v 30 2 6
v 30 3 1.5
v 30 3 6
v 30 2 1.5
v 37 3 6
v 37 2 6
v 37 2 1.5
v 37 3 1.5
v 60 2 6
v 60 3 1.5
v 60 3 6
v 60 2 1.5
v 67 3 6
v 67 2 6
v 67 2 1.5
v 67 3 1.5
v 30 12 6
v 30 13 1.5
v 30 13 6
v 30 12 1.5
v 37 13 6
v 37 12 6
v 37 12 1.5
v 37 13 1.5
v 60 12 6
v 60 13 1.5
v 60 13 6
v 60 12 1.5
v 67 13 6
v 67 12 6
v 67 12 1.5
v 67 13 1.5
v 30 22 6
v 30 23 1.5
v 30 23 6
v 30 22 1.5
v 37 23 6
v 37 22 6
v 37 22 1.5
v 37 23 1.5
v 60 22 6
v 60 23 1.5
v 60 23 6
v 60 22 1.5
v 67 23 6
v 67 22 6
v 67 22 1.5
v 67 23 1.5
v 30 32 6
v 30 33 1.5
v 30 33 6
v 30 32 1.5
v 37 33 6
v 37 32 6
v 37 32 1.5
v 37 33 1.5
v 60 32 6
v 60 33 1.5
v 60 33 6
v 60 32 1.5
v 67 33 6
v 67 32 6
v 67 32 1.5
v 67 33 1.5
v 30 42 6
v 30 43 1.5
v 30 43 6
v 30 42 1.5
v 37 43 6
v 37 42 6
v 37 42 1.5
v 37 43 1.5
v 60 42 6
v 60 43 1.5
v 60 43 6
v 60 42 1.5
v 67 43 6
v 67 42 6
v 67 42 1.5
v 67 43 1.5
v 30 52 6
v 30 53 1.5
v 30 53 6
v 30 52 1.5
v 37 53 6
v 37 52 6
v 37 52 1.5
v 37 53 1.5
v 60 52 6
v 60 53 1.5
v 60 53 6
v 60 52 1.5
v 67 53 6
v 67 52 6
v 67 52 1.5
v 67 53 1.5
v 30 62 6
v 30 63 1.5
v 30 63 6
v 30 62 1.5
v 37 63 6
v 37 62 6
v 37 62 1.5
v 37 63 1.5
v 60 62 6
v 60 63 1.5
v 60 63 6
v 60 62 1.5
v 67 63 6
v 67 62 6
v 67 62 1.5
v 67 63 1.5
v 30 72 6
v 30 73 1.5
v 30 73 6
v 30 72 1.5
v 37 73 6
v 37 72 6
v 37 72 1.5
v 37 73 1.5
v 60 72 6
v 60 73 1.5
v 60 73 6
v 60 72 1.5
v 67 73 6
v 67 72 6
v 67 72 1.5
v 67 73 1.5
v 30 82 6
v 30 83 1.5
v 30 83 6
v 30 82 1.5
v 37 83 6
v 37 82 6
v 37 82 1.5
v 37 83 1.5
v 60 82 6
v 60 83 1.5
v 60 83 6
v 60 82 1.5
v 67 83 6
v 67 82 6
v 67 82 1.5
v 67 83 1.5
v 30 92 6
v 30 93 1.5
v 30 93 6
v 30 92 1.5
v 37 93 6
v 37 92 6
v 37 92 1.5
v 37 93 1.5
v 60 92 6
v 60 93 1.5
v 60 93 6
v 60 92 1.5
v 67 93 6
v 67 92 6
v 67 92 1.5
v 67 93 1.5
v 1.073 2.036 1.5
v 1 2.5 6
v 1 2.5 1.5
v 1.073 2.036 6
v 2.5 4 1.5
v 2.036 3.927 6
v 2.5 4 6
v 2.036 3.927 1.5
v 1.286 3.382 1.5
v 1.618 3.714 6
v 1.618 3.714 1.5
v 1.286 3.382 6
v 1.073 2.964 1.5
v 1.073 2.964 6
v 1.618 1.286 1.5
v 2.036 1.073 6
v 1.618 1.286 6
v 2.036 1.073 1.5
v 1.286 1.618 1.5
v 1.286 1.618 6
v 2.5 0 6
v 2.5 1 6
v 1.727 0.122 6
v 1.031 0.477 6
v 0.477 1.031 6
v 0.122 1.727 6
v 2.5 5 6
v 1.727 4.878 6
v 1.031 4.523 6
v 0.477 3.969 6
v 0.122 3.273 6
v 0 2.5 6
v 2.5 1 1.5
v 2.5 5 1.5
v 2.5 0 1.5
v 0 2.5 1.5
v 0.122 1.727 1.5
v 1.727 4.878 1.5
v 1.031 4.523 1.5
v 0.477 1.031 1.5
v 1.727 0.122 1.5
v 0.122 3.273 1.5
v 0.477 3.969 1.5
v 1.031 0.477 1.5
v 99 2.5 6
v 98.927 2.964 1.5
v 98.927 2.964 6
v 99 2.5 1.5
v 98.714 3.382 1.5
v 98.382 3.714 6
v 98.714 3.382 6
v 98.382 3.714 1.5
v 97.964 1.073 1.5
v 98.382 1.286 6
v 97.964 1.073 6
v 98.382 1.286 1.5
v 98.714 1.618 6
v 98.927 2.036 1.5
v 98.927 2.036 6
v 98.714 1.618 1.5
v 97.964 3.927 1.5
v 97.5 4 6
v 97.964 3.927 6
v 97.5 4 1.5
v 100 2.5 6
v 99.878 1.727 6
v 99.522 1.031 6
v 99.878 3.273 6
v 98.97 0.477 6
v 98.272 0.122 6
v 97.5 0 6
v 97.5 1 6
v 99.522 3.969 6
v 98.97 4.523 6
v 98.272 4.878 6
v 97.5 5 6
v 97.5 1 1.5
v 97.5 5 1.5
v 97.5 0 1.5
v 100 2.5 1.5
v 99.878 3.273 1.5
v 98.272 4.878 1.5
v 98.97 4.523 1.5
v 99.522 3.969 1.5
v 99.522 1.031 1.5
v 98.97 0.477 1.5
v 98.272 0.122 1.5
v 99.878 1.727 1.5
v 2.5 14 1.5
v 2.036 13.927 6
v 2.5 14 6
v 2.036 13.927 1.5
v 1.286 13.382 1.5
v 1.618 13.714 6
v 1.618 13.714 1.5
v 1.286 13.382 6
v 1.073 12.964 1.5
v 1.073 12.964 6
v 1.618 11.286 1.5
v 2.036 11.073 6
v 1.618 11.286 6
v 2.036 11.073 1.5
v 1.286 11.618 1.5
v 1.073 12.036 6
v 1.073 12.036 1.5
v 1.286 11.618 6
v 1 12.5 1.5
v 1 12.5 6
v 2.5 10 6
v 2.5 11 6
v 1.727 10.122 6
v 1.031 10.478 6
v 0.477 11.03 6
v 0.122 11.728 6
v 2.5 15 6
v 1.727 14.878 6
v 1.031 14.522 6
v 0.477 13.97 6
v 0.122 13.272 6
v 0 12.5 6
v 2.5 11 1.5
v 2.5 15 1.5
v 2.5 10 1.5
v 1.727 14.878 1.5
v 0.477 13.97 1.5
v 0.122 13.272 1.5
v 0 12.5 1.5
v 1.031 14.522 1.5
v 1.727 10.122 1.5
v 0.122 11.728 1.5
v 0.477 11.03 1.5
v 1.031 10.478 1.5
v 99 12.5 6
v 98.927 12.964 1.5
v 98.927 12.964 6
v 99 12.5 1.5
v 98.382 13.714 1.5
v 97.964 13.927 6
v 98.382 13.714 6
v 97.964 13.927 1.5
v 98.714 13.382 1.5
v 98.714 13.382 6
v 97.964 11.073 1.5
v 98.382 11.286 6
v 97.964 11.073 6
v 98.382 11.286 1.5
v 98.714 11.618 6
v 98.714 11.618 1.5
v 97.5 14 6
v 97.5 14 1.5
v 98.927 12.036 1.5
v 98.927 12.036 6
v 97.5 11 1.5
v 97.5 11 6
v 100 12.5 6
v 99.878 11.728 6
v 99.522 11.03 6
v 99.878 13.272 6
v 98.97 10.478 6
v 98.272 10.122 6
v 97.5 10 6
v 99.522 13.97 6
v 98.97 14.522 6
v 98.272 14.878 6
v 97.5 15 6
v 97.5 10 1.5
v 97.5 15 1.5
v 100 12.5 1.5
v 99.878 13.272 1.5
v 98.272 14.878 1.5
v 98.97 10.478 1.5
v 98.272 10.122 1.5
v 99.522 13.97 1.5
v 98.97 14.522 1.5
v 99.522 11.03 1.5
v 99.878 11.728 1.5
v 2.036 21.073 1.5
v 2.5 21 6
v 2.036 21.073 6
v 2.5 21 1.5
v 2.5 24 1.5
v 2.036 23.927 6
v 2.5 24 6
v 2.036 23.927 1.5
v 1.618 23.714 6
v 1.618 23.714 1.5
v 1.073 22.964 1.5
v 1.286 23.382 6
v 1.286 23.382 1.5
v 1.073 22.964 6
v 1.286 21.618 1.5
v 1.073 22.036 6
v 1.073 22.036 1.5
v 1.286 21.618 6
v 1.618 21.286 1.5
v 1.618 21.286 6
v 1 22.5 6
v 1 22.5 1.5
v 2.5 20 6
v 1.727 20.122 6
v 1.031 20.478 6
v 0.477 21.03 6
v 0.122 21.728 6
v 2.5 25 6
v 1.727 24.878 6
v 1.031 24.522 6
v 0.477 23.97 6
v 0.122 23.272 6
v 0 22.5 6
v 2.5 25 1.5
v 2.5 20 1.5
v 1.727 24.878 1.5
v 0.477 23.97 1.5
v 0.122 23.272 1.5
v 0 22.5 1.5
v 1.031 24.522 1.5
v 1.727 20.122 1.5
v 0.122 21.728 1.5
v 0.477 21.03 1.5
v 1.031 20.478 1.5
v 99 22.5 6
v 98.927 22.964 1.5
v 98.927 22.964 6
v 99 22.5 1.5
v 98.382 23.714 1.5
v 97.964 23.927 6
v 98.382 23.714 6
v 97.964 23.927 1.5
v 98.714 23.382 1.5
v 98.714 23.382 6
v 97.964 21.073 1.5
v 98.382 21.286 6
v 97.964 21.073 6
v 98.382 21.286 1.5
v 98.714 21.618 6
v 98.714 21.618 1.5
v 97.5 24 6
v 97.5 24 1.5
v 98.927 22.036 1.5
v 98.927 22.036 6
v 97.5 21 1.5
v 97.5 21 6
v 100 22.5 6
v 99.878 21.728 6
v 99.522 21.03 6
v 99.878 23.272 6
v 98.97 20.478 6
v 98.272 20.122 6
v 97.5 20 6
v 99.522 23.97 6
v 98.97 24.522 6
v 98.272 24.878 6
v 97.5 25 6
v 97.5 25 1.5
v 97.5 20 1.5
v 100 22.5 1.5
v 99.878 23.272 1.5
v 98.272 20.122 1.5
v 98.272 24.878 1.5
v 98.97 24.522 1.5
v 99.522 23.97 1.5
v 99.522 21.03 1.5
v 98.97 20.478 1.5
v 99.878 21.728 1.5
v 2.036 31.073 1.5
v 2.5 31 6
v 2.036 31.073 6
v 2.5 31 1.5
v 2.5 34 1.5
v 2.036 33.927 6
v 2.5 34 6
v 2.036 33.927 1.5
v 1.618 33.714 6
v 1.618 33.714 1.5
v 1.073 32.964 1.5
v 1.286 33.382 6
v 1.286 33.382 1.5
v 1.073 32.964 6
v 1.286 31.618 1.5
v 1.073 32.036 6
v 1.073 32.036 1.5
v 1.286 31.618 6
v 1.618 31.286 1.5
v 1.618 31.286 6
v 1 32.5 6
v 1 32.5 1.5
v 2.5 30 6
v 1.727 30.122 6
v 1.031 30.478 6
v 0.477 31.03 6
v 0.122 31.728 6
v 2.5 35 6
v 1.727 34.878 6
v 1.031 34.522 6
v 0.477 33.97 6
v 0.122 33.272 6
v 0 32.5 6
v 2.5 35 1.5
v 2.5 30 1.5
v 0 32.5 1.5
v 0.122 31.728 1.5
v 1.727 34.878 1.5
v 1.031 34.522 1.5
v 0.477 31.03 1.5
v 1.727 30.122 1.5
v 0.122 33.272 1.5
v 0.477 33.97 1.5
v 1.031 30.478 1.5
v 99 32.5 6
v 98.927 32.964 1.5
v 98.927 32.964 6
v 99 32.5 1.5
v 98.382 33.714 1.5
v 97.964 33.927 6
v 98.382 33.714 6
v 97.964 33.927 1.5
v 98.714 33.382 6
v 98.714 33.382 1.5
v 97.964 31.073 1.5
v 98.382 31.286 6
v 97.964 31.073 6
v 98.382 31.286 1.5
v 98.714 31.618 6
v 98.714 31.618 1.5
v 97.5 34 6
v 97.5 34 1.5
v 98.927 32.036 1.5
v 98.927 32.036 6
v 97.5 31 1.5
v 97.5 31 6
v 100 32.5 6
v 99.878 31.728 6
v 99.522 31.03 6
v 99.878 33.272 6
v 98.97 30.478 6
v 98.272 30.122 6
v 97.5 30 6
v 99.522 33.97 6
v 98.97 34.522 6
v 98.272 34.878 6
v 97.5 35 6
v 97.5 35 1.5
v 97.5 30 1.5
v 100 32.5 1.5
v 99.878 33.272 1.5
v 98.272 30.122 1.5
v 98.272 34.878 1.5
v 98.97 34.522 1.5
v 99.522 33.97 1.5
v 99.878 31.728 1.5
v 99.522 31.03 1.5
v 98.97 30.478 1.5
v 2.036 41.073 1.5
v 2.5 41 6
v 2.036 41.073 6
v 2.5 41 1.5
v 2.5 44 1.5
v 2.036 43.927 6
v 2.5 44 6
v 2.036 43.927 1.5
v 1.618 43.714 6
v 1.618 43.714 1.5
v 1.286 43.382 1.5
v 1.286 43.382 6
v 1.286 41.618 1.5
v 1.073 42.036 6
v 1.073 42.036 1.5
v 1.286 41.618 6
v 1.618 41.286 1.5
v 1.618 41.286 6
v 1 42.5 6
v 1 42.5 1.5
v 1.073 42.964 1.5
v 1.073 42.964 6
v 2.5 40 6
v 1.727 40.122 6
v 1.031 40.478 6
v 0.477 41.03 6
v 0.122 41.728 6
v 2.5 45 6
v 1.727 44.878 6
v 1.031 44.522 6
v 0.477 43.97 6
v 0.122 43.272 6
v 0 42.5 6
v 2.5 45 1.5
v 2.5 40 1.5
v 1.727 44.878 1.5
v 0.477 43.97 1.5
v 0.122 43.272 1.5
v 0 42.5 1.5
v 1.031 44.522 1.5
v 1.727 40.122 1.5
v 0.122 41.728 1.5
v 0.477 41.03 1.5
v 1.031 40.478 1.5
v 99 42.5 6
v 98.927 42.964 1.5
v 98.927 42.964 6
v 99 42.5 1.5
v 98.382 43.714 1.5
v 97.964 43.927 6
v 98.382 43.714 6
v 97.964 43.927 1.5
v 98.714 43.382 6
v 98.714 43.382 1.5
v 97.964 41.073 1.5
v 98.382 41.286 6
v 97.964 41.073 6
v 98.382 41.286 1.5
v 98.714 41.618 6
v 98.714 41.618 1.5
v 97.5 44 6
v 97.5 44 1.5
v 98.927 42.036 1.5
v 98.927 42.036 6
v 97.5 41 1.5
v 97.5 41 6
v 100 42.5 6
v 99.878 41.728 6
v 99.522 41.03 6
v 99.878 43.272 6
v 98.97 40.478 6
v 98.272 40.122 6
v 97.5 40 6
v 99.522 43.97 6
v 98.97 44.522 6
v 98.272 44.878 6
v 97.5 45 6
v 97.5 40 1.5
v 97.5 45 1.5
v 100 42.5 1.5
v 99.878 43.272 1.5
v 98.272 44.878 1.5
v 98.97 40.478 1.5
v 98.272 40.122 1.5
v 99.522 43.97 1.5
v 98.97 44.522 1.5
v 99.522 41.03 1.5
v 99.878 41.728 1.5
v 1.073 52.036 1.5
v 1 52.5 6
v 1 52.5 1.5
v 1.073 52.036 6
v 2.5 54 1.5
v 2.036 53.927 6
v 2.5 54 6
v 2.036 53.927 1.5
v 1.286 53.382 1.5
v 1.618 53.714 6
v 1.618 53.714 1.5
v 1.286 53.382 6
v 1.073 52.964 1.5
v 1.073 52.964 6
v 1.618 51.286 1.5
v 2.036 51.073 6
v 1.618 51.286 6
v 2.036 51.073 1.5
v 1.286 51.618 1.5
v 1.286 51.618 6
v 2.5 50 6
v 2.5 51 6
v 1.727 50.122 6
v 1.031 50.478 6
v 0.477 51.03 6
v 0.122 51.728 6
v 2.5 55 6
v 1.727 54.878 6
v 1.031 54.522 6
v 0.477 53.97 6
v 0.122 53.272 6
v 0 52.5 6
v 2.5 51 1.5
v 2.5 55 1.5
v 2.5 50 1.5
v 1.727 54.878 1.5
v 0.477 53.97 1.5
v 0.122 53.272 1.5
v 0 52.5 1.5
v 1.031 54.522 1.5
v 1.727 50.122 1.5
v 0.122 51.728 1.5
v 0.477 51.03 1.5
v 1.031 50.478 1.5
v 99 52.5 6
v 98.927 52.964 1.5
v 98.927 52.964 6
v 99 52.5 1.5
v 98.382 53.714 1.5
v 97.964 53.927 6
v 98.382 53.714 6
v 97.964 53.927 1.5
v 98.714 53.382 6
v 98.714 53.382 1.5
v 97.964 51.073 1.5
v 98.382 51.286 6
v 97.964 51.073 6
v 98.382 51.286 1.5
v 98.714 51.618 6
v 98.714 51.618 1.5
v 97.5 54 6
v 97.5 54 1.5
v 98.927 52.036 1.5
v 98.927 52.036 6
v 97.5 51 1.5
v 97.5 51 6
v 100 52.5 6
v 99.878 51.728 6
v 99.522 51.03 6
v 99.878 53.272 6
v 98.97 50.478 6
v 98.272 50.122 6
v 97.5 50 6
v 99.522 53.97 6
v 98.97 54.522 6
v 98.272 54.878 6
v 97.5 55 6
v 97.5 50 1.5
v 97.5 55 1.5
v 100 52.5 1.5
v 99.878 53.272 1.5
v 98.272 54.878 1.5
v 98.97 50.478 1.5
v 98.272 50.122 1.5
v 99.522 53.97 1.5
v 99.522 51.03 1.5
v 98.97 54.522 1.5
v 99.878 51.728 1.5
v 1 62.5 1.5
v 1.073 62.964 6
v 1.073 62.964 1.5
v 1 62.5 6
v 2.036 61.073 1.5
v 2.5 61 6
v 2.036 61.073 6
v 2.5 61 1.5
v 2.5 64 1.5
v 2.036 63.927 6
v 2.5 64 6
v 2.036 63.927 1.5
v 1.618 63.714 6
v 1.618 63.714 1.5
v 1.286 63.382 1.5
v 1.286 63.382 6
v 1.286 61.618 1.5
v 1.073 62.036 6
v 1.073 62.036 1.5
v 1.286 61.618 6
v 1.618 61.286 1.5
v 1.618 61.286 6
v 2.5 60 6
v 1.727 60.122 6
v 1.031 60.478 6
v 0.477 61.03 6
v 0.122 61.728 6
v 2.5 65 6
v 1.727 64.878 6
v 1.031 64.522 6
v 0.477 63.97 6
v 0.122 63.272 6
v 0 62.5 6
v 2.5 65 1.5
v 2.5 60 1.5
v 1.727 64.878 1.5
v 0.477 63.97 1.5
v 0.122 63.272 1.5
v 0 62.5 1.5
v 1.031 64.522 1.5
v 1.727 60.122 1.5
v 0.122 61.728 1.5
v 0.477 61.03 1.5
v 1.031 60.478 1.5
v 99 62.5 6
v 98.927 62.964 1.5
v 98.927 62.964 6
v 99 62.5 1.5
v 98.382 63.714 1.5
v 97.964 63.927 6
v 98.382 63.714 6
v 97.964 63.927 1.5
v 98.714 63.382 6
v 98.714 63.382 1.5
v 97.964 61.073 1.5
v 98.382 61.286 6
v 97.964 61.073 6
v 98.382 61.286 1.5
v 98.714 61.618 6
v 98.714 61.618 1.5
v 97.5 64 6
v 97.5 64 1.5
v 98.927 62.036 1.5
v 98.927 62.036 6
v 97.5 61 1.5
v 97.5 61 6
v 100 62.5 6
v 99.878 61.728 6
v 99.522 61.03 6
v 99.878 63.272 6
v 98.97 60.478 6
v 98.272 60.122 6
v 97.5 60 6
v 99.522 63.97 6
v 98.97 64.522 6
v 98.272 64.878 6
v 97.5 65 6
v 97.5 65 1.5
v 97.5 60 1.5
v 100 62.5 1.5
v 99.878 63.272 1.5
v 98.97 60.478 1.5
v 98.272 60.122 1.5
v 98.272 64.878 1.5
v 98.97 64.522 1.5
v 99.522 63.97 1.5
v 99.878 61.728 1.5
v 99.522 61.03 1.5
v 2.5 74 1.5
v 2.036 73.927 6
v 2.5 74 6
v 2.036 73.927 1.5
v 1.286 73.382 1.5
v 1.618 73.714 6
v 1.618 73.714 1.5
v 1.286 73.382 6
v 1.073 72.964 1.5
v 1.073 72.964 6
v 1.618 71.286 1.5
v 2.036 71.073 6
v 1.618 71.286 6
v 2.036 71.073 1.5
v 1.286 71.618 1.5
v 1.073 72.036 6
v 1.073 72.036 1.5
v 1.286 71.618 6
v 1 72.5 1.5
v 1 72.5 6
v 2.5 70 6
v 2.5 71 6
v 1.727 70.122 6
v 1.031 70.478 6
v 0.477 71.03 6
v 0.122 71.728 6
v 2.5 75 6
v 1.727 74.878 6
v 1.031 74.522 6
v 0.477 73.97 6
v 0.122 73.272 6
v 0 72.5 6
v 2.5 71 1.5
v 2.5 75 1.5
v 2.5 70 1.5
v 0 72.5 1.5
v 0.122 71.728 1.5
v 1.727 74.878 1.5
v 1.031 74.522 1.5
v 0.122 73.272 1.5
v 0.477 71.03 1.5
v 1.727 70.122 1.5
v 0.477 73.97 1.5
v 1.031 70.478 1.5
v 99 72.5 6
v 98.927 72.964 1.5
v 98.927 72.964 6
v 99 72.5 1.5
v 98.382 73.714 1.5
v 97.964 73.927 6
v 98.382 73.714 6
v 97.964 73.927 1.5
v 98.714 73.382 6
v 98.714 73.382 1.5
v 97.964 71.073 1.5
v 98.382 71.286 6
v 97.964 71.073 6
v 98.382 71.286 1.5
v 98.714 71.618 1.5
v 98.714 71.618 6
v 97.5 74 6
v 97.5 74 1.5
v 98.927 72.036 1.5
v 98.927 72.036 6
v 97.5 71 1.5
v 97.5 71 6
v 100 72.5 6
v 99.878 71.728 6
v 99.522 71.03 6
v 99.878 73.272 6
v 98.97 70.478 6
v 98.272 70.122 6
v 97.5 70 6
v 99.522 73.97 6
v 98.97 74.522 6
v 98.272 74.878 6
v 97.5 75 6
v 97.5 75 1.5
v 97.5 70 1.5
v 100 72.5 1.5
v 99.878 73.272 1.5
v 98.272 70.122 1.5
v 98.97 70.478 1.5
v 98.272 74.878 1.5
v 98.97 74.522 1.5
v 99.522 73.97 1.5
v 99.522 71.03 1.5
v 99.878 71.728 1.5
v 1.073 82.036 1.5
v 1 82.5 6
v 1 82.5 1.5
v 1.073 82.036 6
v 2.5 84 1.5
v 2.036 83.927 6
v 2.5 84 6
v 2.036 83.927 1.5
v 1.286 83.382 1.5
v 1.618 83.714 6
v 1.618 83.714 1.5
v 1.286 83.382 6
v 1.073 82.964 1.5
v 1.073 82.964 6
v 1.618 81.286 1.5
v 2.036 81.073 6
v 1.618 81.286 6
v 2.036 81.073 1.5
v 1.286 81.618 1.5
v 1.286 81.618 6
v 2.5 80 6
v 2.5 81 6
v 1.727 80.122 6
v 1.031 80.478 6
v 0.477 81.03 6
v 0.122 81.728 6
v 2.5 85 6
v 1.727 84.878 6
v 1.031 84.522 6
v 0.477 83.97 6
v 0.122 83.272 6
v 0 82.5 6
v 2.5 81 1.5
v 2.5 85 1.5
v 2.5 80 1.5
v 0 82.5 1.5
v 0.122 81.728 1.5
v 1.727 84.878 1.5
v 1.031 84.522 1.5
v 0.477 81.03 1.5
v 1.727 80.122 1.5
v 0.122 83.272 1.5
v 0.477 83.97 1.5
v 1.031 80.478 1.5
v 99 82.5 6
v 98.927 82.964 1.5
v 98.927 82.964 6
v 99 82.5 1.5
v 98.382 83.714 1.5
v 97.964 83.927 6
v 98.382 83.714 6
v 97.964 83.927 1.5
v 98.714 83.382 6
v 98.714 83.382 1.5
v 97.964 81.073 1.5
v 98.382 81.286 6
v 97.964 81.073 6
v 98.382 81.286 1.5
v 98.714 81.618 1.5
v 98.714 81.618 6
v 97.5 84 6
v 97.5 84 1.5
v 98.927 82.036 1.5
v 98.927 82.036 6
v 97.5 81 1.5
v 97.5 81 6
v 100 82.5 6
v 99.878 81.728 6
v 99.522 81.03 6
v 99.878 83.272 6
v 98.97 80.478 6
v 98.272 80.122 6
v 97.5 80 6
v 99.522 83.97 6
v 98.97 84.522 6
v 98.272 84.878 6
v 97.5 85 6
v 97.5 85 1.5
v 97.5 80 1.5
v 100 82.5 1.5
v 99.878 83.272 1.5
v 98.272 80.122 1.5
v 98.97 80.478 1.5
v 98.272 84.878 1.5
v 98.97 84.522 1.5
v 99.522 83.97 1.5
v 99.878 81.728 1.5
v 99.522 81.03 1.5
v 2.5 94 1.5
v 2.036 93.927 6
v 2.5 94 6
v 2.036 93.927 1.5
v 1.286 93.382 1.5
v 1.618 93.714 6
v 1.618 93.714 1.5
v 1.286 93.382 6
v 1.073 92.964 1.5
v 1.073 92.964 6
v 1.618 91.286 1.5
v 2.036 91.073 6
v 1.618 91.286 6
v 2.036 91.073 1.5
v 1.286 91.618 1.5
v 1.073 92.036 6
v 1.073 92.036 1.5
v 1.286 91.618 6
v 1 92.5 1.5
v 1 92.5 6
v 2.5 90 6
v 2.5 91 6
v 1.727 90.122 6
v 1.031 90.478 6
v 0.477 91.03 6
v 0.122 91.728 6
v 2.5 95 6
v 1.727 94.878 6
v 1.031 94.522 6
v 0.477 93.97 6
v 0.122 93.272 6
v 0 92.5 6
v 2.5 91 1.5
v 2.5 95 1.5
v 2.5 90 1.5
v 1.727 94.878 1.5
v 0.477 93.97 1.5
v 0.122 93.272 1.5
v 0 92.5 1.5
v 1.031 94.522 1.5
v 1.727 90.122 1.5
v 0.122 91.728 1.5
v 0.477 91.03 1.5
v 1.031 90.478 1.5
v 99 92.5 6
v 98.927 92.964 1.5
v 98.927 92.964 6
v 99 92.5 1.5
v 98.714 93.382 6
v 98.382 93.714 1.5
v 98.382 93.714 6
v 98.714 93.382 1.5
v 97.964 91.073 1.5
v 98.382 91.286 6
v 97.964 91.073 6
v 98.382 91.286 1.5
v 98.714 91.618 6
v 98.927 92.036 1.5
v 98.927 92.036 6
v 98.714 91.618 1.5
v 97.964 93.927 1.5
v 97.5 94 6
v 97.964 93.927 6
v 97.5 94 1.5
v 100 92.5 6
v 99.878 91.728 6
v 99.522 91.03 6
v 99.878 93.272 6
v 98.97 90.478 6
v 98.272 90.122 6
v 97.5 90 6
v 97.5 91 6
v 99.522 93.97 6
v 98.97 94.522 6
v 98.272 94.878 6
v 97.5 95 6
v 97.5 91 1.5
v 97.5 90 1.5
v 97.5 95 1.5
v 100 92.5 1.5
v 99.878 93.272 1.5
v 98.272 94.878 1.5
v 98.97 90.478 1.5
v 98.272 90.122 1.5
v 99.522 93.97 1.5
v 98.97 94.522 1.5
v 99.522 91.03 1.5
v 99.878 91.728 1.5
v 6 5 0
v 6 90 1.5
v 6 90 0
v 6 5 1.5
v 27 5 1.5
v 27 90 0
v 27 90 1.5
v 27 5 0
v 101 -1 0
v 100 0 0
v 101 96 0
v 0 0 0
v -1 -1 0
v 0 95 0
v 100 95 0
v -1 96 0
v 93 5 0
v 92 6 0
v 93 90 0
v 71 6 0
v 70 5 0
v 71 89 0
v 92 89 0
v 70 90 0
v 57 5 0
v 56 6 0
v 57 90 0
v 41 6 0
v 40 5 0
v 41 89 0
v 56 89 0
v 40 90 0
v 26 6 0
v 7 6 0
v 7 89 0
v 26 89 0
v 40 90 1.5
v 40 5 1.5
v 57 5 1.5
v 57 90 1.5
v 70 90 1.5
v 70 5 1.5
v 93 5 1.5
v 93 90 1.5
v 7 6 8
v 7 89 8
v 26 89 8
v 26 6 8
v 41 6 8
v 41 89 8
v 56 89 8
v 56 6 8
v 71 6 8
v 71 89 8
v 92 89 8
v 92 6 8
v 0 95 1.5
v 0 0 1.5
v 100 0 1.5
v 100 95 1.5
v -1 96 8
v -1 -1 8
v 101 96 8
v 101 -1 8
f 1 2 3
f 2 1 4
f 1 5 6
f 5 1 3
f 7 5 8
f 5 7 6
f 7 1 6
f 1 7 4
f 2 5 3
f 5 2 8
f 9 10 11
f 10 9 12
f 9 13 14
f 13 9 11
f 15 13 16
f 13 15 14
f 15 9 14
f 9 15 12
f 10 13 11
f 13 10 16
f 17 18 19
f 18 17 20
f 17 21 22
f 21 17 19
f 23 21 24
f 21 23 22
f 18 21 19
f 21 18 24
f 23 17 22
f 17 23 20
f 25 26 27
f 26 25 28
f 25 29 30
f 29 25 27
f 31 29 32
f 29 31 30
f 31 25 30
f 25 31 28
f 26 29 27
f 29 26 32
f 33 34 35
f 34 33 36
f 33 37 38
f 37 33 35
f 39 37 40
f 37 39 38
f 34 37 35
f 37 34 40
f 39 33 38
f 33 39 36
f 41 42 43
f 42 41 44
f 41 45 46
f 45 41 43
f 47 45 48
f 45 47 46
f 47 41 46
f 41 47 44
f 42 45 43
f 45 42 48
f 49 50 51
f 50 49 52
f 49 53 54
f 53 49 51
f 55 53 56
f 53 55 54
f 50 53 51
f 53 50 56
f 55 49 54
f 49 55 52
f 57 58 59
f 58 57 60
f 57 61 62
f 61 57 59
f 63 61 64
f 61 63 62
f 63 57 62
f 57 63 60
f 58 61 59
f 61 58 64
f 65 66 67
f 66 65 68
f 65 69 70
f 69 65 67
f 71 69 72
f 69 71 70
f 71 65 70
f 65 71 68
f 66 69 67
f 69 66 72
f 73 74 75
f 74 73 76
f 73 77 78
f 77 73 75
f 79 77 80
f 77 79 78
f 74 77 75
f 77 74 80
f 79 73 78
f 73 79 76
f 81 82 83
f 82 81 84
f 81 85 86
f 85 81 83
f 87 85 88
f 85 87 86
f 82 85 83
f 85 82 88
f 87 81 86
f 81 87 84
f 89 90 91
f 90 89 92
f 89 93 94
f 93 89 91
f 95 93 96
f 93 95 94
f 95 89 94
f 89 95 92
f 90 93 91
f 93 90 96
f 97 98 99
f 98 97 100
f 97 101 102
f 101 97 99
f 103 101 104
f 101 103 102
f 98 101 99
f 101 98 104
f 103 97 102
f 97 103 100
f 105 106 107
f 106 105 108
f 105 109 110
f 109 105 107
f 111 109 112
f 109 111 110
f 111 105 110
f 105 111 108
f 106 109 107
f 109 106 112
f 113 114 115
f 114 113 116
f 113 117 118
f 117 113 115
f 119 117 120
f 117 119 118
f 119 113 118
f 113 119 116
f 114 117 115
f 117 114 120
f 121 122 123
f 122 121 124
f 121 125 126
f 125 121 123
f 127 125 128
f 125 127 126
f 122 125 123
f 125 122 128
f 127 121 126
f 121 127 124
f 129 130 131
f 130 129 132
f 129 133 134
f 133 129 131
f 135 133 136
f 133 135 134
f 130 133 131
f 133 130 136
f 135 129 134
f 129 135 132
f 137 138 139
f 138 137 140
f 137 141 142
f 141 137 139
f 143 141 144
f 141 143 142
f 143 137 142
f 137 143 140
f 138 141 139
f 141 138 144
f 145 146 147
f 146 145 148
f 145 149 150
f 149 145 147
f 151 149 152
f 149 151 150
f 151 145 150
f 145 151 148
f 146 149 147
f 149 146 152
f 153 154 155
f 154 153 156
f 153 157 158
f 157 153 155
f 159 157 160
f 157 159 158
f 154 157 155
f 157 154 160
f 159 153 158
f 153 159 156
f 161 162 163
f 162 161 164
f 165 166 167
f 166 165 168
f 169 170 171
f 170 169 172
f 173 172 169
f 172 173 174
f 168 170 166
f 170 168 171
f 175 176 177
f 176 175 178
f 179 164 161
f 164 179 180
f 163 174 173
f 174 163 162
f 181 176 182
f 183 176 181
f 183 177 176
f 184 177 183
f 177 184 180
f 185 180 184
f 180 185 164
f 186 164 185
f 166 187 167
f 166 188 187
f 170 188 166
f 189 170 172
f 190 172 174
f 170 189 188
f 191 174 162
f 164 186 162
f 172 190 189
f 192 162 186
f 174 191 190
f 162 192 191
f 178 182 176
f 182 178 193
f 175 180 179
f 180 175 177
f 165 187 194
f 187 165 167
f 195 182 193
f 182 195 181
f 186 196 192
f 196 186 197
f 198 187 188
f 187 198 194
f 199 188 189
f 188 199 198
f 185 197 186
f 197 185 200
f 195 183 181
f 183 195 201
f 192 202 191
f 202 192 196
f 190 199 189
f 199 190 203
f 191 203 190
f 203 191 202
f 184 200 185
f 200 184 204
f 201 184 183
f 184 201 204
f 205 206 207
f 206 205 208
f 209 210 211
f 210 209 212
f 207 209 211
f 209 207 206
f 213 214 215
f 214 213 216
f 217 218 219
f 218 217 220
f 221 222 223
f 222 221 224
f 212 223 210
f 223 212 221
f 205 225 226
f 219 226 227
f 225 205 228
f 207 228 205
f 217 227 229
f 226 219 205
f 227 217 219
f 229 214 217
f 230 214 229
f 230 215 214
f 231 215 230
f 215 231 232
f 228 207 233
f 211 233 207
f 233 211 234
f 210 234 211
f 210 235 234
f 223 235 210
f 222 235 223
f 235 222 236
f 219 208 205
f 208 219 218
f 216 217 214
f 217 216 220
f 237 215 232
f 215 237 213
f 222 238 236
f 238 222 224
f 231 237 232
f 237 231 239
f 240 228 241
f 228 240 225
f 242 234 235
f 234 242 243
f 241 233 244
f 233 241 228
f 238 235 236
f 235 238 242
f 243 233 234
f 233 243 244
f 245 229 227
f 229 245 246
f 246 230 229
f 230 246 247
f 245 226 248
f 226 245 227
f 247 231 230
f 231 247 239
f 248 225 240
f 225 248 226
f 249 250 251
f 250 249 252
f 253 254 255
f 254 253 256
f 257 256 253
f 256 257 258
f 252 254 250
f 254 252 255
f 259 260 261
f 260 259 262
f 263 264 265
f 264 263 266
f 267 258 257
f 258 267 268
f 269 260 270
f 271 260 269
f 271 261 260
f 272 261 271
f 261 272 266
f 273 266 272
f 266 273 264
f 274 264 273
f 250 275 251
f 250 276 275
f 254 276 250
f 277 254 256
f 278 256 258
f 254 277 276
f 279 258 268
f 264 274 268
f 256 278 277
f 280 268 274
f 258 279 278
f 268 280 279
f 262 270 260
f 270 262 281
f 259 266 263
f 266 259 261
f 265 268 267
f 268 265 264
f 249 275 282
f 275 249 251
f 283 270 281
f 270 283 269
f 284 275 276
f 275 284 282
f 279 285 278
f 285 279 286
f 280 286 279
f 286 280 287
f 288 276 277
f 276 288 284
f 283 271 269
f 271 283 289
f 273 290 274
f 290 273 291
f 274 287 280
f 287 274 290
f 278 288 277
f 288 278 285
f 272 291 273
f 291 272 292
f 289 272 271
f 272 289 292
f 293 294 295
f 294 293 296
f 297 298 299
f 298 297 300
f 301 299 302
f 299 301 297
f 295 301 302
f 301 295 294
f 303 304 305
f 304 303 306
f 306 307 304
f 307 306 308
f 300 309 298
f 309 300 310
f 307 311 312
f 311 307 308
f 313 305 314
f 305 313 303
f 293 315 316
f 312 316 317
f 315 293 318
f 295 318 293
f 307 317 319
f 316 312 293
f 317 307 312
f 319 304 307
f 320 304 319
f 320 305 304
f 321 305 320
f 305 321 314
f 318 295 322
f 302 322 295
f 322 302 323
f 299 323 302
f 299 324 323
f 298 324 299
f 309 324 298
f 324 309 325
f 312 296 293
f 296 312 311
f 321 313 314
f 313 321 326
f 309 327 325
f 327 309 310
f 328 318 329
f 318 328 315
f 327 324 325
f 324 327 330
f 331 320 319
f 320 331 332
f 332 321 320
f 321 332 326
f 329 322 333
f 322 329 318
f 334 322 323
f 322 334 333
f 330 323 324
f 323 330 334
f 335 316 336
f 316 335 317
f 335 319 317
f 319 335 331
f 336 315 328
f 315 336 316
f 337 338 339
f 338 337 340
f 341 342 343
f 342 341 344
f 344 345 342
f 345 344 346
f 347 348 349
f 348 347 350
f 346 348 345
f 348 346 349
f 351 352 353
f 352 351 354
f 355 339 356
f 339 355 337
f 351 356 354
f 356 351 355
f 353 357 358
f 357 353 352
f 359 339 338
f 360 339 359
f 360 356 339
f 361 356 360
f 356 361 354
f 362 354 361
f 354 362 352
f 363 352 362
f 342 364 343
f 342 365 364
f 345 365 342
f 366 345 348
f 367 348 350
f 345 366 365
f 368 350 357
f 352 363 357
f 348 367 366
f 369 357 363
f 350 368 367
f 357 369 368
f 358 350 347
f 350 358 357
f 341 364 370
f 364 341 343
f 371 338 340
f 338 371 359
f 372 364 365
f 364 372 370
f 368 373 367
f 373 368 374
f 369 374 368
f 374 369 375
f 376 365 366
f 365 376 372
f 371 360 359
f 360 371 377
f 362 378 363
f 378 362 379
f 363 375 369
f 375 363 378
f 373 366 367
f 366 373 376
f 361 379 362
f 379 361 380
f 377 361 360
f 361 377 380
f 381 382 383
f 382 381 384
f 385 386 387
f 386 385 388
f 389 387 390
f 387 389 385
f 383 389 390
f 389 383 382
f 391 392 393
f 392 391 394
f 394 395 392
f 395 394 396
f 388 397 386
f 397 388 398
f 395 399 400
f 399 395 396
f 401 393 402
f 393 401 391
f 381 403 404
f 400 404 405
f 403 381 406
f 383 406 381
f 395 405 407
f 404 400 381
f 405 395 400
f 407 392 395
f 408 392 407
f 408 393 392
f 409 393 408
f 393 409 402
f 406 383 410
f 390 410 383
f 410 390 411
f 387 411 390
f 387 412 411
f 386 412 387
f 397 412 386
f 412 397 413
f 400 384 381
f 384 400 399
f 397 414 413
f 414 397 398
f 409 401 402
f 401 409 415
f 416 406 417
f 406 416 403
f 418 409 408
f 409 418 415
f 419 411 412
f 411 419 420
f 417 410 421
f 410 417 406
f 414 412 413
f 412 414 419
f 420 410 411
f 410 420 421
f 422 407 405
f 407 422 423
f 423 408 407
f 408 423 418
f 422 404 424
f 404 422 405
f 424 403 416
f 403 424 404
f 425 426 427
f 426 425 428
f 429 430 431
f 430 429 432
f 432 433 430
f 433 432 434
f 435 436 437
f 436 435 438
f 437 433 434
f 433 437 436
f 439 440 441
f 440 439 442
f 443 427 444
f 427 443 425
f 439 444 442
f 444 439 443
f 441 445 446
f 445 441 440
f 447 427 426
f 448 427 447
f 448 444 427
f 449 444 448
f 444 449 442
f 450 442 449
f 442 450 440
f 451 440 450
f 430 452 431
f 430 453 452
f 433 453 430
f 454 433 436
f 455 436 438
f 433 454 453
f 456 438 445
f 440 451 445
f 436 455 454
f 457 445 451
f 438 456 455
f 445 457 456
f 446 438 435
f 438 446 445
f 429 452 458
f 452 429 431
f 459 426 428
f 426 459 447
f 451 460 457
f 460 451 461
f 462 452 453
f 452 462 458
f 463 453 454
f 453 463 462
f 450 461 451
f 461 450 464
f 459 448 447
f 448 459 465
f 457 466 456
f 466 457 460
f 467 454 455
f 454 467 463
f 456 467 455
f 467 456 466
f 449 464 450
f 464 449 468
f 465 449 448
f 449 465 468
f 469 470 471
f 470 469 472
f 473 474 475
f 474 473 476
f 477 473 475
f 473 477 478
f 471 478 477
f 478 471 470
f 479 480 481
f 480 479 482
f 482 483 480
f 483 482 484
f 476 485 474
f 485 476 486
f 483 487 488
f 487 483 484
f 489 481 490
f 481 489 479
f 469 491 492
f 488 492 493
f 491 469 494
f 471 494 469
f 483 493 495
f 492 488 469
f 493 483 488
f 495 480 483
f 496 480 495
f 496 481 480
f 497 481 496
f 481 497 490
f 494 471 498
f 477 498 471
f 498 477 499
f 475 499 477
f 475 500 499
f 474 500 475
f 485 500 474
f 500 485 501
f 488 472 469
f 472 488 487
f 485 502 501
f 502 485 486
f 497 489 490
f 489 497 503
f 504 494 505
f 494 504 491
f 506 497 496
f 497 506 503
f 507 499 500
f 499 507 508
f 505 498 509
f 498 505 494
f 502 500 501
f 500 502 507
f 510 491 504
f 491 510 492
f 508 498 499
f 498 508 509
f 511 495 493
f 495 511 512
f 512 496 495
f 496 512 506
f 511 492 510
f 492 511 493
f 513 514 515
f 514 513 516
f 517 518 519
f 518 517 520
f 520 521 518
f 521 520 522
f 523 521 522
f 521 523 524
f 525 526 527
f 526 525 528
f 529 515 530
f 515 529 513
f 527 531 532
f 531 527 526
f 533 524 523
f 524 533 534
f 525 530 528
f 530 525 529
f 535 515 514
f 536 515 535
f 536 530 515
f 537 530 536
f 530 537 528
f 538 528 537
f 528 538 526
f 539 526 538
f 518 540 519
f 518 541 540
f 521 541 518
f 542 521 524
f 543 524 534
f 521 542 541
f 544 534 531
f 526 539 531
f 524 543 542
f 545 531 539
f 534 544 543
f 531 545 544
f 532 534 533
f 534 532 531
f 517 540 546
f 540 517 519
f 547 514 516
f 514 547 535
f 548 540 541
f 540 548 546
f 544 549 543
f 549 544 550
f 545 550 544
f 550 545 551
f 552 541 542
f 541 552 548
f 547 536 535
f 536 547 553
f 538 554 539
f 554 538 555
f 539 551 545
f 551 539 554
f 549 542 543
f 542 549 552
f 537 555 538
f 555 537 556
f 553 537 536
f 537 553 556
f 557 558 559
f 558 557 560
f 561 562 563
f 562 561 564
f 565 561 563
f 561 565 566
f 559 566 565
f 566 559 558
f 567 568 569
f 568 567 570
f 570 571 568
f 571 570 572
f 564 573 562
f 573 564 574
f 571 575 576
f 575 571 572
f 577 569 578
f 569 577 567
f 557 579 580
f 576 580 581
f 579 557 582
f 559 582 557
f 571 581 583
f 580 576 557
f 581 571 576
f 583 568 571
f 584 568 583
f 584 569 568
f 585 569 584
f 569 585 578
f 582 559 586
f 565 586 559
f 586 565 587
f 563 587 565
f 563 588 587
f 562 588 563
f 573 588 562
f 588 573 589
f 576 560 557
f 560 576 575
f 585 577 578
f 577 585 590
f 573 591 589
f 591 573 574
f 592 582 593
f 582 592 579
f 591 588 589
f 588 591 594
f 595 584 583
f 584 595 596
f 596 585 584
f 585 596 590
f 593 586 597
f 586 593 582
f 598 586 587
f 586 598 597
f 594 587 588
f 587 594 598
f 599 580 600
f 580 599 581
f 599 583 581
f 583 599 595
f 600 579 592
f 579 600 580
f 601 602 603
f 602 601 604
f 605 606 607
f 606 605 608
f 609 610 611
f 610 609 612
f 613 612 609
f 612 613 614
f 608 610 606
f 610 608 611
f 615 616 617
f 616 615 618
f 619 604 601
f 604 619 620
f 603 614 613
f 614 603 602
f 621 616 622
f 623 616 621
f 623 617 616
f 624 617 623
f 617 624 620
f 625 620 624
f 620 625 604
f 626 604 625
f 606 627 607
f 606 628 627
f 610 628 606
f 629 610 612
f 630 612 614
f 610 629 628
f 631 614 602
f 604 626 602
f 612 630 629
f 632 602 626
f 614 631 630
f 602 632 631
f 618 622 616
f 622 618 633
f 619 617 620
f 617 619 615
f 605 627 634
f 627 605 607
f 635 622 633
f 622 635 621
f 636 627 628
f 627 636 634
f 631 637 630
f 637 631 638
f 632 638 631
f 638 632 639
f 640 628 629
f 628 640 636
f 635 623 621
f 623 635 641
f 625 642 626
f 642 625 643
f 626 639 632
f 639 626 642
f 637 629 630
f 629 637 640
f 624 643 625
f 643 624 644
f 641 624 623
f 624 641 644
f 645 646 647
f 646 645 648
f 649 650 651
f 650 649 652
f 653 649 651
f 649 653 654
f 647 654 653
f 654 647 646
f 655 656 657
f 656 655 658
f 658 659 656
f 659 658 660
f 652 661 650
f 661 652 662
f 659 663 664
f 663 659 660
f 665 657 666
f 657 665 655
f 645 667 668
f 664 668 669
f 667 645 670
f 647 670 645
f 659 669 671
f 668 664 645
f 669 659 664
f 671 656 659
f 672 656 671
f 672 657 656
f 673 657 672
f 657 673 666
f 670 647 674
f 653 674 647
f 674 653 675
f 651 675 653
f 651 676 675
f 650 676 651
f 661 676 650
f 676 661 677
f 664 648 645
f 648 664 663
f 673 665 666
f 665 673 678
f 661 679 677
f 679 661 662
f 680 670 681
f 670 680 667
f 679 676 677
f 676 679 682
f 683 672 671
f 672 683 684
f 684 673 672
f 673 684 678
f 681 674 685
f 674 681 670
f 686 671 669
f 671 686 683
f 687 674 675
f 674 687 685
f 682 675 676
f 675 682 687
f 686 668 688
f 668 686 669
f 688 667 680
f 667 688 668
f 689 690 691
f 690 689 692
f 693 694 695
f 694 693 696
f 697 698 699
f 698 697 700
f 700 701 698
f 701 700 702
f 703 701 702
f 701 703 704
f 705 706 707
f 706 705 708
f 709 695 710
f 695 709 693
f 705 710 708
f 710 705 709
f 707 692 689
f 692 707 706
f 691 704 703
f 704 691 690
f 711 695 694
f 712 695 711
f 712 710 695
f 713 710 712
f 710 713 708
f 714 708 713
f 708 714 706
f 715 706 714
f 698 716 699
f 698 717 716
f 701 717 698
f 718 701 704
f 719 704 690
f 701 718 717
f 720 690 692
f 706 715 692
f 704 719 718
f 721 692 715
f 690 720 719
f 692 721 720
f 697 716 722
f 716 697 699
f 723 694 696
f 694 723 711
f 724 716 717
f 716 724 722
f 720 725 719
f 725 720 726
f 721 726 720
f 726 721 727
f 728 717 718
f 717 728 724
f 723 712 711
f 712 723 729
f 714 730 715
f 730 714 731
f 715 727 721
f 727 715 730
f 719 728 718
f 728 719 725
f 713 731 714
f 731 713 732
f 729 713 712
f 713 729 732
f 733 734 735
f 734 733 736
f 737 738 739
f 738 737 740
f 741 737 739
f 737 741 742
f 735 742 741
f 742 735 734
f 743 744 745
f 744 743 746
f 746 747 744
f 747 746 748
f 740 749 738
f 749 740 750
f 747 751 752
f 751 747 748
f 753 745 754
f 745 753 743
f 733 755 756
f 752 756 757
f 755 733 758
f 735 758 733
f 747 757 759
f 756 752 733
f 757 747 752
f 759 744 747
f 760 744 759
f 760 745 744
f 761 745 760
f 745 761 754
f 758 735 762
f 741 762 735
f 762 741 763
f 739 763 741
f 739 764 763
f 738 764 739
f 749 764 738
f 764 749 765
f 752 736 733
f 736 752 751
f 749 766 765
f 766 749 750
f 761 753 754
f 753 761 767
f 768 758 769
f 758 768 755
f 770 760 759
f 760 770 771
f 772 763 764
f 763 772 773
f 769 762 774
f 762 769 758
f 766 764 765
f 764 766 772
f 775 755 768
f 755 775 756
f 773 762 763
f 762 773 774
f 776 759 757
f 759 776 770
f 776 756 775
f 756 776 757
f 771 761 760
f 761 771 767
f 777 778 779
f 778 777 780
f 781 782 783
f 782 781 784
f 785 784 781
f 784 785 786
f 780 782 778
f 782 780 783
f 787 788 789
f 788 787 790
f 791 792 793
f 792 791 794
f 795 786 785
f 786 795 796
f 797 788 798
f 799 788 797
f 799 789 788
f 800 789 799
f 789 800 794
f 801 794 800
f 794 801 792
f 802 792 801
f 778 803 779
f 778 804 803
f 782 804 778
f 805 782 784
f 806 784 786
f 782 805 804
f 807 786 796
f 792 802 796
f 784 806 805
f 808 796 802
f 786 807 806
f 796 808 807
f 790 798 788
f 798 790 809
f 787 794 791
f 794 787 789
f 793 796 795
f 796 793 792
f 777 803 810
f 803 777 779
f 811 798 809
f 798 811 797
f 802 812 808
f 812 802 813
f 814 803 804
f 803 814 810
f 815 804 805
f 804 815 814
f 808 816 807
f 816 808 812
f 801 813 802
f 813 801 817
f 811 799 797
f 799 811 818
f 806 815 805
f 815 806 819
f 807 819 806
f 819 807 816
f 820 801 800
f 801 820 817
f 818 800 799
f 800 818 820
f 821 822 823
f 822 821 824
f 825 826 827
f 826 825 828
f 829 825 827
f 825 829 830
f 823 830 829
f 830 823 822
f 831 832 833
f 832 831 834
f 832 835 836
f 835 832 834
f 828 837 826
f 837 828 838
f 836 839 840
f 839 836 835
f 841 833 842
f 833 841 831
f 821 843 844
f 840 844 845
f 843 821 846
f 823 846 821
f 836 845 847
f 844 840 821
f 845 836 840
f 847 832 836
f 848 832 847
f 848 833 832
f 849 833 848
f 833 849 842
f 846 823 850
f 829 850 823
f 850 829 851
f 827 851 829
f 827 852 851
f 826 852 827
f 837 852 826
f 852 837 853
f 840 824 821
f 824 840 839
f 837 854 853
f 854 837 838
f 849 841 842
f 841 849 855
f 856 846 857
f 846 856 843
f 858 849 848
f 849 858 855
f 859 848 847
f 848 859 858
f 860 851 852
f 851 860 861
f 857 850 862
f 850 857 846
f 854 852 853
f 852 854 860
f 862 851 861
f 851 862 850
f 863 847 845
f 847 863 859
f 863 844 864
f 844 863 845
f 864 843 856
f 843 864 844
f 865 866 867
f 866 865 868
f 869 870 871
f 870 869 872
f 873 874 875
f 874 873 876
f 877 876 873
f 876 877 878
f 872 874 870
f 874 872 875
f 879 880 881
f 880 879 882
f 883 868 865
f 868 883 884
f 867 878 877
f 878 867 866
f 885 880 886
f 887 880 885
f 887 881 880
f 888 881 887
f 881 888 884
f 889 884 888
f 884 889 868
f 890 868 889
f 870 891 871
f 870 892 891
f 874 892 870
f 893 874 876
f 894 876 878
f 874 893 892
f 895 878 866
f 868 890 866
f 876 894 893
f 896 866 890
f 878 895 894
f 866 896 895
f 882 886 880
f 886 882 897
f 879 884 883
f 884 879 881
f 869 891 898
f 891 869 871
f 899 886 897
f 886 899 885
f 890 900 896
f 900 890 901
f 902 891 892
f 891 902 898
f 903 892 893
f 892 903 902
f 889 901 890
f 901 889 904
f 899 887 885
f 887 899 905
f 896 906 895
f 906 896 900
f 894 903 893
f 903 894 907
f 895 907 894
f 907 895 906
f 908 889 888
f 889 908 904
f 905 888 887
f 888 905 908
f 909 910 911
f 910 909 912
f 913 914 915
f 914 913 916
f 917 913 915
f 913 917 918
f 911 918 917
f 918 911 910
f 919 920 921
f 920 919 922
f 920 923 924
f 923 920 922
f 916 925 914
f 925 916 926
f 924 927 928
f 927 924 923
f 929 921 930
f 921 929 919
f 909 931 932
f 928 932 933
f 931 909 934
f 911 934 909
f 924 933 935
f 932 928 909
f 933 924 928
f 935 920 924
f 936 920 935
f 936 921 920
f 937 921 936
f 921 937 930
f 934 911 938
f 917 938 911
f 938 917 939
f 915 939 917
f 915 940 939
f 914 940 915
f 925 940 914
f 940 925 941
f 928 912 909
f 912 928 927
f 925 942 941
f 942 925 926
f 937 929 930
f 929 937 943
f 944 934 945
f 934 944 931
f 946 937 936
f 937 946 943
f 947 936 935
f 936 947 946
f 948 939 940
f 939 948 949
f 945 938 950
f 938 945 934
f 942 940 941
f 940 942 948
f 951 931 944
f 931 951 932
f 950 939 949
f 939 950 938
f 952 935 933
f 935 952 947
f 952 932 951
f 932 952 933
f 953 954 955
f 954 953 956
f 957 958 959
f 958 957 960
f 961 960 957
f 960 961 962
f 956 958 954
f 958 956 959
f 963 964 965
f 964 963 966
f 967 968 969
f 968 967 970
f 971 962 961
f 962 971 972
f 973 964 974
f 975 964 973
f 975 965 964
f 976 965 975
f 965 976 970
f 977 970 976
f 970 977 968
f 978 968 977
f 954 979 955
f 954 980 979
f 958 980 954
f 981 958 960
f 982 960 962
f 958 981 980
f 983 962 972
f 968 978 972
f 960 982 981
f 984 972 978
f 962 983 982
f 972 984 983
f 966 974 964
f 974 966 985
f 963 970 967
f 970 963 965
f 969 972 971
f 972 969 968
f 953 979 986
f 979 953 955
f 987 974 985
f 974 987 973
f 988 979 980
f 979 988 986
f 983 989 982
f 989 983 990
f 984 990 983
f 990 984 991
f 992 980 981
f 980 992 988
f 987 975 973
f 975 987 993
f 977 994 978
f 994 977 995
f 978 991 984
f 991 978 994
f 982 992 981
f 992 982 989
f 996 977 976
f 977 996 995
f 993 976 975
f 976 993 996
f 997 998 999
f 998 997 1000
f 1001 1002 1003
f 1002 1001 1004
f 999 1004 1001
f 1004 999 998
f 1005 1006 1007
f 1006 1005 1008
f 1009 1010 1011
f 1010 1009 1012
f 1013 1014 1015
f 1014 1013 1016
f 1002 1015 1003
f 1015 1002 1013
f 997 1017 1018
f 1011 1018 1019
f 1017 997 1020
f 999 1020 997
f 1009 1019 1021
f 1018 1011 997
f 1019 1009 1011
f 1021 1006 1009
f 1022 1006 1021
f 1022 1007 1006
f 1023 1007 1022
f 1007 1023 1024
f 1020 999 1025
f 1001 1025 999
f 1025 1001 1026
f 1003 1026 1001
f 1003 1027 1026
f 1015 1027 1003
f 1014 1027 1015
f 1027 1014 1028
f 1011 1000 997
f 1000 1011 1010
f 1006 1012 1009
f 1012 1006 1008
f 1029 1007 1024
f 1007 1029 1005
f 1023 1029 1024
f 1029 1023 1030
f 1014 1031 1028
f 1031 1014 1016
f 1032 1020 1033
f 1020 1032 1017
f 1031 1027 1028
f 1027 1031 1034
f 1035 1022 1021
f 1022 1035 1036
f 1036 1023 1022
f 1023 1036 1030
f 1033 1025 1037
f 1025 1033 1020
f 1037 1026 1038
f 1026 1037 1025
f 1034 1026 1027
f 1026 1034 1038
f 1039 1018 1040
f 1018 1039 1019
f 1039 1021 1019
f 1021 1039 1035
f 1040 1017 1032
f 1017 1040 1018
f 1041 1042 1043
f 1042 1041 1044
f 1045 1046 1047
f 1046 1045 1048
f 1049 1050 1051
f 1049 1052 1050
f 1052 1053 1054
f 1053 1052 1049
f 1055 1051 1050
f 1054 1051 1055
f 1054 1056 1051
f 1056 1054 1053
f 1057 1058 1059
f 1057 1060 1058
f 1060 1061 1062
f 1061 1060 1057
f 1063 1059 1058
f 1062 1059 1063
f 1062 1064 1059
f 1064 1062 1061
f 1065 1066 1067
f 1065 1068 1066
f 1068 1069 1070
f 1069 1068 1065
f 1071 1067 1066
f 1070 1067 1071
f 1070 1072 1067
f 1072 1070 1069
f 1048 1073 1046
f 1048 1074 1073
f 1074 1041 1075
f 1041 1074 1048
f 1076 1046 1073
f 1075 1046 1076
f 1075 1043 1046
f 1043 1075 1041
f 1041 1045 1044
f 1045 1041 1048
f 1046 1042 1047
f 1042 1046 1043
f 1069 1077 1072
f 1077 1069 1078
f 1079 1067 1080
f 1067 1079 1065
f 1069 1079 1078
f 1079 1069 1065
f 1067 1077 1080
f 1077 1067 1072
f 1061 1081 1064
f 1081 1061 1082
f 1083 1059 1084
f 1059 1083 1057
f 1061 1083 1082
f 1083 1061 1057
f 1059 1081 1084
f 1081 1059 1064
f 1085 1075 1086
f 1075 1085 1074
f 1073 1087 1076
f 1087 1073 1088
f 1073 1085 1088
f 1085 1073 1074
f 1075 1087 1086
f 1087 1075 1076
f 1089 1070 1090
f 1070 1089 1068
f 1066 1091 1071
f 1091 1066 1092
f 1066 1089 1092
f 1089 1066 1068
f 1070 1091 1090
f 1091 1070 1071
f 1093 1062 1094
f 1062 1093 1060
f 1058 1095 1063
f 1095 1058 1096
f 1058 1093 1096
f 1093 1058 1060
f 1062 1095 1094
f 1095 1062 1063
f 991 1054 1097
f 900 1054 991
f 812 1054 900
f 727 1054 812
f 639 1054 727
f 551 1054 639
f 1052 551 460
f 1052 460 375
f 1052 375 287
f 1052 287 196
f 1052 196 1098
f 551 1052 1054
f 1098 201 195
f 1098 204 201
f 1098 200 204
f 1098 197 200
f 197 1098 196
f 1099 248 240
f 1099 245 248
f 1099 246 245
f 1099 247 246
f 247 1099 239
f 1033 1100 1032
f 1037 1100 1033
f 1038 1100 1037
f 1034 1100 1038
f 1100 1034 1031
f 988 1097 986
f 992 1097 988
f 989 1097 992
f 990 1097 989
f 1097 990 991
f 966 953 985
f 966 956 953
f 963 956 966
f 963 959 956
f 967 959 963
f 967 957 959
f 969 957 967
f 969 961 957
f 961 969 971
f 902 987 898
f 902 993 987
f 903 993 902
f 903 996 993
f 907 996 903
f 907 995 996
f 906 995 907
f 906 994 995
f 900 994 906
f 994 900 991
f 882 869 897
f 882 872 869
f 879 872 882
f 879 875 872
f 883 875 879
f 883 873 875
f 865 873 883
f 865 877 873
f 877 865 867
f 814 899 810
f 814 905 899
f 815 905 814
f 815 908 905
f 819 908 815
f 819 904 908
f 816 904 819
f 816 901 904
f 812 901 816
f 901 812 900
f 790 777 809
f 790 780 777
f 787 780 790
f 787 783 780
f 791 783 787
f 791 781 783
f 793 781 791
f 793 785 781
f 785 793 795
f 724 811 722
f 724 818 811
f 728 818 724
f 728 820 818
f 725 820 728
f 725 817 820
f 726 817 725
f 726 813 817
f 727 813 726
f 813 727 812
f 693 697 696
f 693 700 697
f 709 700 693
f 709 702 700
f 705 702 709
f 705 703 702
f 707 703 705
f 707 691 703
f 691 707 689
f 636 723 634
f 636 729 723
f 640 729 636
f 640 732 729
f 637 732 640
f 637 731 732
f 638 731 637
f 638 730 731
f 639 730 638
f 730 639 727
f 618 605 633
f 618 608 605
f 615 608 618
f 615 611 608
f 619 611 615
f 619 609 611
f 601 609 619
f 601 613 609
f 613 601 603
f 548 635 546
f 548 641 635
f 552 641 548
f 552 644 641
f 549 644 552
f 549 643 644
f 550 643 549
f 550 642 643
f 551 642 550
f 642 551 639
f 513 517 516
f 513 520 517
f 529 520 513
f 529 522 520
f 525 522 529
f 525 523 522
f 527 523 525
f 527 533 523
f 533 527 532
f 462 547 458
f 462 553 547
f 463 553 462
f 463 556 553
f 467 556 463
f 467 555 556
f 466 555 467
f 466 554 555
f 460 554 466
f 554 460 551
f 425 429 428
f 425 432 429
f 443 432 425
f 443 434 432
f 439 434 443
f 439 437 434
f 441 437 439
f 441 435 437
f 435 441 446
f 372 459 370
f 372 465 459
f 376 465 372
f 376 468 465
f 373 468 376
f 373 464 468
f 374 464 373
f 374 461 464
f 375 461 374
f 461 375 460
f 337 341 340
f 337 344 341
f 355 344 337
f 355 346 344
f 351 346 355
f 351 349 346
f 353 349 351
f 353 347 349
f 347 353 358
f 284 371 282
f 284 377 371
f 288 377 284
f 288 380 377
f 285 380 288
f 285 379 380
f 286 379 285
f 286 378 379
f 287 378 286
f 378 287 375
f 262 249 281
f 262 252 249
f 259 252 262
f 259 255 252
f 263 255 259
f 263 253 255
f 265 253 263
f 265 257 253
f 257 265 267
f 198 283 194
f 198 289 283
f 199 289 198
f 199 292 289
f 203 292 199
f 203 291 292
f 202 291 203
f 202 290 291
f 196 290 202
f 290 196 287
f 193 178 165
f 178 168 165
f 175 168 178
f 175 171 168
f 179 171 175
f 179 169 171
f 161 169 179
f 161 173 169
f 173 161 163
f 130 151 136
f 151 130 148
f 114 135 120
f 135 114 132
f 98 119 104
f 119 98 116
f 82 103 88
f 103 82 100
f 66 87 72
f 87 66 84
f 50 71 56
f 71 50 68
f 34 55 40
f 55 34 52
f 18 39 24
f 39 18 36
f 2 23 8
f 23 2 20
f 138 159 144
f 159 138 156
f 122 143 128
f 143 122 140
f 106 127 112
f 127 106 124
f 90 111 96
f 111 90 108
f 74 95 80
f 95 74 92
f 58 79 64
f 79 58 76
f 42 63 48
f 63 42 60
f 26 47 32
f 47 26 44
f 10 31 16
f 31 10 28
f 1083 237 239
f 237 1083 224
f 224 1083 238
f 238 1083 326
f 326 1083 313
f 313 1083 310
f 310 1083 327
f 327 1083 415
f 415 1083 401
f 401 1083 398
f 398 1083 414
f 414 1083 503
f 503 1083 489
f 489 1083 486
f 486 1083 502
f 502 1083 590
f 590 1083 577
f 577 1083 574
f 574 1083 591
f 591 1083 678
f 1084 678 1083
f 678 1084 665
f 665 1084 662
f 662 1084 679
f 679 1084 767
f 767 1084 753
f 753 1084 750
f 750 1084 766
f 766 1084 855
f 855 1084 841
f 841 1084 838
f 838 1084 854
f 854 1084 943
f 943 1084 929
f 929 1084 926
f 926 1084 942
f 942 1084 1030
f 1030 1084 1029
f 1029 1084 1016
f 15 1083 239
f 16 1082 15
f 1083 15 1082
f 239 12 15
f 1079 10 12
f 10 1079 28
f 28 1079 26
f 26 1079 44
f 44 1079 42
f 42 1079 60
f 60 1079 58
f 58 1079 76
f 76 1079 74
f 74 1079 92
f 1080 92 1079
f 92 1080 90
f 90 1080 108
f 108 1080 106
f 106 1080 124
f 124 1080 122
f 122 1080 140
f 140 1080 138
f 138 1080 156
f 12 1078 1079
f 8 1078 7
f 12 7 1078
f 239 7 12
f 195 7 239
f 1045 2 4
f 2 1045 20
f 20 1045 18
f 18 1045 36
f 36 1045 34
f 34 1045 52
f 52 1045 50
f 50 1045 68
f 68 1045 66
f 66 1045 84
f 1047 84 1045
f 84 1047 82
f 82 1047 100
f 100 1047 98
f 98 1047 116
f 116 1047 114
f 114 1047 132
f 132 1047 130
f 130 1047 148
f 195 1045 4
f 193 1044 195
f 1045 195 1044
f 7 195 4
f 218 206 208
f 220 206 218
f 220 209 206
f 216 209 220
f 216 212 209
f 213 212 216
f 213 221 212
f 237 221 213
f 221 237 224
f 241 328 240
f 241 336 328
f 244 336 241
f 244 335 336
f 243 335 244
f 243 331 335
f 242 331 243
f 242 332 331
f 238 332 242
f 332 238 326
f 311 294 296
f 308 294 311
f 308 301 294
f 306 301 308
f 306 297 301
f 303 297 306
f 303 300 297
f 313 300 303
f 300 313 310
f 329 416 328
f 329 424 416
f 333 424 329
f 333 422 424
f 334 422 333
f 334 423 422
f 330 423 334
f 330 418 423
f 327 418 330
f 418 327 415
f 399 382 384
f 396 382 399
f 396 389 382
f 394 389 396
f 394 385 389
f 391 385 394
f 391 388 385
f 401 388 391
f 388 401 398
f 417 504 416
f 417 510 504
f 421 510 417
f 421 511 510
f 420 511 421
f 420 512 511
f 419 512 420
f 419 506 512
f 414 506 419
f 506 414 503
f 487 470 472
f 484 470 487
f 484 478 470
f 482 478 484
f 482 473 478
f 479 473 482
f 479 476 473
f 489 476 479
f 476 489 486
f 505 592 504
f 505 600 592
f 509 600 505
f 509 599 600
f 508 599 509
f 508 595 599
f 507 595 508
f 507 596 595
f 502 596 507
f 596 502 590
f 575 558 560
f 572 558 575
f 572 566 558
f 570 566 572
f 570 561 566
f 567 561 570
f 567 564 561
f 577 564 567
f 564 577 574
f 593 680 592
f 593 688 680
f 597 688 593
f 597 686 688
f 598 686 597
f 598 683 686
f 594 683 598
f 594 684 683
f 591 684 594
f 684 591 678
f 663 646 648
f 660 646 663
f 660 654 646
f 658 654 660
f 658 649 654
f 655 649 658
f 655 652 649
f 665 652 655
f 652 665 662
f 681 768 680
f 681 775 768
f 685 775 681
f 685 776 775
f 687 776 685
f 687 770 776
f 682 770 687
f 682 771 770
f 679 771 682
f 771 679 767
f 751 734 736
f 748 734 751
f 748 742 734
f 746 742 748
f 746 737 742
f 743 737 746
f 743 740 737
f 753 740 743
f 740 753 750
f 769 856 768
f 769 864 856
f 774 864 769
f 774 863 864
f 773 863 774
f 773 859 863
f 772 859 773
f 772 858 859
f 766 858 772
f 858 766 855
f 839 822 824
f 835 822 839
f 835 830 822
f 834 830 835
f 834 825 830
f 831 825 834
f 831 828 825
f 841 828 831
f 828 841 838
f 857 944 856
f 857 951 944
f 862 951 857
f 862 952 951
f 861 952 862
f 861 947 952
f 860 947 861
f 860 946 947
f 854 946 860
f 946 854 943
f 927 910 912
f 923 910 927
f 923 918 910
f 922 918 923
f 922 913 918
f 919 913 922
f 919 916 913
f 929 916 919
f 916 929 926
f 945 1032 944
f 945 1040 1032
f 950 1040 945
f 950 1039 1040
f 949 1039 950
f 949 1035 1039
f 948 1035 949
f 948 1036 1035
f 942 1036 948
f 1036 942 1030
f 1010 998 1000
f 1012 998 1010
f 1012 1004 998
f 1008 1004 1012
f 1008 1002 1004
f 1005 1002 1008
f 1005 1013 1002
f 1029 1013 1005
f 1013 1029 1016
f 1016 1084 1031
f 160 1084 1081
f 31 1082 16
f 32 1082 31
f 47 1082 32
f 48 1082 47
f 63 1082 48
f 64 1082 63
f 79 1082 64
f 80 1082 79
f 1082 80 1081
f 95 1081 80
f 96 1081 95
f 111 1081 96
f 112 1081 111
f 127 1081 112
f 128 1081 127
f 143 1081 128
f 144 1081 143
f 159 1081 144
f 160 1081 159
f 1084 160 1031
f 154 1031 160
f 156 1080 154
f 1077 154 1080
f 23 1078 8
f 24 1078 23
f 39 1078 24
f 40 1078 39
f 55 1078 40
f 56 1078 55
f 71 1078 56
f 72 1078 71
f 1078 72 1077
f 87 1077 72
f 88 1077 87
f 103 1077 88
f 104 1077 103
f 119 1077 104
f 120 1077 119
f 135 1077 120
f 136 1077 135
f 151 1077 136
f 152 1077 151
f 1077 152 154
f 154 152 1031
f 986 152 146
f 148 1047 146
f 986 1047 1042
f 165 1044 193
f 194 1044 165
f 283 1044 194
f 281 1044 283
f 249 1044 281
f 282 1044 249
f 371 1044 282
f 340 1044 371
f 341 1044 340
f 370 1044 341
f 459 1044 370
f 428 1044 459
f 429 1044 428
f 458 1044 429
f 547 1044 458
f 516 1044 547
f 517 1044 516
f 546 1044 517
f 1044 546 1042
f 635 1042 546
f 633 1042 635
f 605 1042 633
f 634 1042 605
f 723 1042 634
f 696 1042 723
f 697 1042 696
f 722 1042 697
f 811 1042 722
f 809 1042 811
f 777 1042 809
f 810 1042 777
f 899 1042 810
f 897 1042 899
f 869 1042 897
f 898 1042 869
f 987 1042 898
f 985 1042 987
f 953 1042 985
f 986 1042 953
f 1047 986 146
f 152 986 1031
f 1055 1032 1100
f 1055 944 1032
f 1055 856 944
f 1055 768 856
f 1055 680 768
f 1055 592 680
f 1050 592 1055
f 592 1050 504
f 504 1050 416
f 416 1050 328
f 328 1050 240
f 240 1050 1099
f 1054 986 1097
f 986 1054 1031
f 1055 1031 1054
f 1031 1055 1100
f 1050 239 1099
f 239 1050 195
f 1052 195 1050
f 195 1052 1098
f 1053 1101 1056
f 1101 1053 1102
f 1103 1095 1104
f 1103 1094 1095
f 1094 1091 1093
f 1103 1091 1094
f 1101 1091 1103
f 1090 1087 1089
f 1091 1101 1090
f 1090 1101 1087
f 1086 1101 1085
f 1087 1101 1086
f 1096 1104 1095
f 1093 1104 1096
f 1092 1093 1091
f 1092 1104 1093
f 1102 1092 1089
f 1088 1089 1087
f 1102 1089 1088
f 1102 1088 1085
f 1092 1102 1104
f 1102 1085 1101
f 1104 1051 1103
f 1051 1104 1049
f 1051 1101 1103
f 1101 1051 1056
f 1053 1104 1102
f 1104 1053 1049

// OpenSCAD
$fn= 20;

difference(){
    translate([-1,-1,0]) cube([102,97,8]);
    difference(){
        union(){
            cube([100,95,1.5]);
            //translate([0,0,-1]) cube([100,95,1]);

            for (i = [0:9]) {
                
                difference(){
                    translate([2.5,i*10+2.5,1]) cylinder(r=2.5,h=5);
                    union(){
                        translate([2.5,i*10+2.5,1]) cylinder(r=1.5,h=5);
                        translate([4,i*10+2.5,1]) cube([3,5,10],center=true);
                    }
                }
                
                difference(){ //far cubes
                    translate([100-2.5,i*10+2.5,1]) cylinder(r=2.5,h=5);
                    union(){
                        translate([100-2.5,i*10+2.5,1]) cylinder(r=1.5,h=5);
                        translate([100-4,i*10+2.5,1]) cube([3,5,10],center=true);
                    }
                }
                
                for (j = [1:2]) { //spacers
                    translate([j*30,i*10+2,1]) cube([7,1,5]);
                }
            }
        }

        union(){
            translate([6,5,0]) cube([21,85,10],center=false);
            translate([40,5,0]) cube([17,85,10],center=false);
            translate([70,5,0]) cube([23,85,10],center=false);
        }
    }
    union(){
            translate([7,6,0]) cube([19,83,10],center=false);
            translate([41,6,0]) cube([15,83,10],center=false);
            translate([71,6,0]) cube([21,83,10],center=false);
        }
}
